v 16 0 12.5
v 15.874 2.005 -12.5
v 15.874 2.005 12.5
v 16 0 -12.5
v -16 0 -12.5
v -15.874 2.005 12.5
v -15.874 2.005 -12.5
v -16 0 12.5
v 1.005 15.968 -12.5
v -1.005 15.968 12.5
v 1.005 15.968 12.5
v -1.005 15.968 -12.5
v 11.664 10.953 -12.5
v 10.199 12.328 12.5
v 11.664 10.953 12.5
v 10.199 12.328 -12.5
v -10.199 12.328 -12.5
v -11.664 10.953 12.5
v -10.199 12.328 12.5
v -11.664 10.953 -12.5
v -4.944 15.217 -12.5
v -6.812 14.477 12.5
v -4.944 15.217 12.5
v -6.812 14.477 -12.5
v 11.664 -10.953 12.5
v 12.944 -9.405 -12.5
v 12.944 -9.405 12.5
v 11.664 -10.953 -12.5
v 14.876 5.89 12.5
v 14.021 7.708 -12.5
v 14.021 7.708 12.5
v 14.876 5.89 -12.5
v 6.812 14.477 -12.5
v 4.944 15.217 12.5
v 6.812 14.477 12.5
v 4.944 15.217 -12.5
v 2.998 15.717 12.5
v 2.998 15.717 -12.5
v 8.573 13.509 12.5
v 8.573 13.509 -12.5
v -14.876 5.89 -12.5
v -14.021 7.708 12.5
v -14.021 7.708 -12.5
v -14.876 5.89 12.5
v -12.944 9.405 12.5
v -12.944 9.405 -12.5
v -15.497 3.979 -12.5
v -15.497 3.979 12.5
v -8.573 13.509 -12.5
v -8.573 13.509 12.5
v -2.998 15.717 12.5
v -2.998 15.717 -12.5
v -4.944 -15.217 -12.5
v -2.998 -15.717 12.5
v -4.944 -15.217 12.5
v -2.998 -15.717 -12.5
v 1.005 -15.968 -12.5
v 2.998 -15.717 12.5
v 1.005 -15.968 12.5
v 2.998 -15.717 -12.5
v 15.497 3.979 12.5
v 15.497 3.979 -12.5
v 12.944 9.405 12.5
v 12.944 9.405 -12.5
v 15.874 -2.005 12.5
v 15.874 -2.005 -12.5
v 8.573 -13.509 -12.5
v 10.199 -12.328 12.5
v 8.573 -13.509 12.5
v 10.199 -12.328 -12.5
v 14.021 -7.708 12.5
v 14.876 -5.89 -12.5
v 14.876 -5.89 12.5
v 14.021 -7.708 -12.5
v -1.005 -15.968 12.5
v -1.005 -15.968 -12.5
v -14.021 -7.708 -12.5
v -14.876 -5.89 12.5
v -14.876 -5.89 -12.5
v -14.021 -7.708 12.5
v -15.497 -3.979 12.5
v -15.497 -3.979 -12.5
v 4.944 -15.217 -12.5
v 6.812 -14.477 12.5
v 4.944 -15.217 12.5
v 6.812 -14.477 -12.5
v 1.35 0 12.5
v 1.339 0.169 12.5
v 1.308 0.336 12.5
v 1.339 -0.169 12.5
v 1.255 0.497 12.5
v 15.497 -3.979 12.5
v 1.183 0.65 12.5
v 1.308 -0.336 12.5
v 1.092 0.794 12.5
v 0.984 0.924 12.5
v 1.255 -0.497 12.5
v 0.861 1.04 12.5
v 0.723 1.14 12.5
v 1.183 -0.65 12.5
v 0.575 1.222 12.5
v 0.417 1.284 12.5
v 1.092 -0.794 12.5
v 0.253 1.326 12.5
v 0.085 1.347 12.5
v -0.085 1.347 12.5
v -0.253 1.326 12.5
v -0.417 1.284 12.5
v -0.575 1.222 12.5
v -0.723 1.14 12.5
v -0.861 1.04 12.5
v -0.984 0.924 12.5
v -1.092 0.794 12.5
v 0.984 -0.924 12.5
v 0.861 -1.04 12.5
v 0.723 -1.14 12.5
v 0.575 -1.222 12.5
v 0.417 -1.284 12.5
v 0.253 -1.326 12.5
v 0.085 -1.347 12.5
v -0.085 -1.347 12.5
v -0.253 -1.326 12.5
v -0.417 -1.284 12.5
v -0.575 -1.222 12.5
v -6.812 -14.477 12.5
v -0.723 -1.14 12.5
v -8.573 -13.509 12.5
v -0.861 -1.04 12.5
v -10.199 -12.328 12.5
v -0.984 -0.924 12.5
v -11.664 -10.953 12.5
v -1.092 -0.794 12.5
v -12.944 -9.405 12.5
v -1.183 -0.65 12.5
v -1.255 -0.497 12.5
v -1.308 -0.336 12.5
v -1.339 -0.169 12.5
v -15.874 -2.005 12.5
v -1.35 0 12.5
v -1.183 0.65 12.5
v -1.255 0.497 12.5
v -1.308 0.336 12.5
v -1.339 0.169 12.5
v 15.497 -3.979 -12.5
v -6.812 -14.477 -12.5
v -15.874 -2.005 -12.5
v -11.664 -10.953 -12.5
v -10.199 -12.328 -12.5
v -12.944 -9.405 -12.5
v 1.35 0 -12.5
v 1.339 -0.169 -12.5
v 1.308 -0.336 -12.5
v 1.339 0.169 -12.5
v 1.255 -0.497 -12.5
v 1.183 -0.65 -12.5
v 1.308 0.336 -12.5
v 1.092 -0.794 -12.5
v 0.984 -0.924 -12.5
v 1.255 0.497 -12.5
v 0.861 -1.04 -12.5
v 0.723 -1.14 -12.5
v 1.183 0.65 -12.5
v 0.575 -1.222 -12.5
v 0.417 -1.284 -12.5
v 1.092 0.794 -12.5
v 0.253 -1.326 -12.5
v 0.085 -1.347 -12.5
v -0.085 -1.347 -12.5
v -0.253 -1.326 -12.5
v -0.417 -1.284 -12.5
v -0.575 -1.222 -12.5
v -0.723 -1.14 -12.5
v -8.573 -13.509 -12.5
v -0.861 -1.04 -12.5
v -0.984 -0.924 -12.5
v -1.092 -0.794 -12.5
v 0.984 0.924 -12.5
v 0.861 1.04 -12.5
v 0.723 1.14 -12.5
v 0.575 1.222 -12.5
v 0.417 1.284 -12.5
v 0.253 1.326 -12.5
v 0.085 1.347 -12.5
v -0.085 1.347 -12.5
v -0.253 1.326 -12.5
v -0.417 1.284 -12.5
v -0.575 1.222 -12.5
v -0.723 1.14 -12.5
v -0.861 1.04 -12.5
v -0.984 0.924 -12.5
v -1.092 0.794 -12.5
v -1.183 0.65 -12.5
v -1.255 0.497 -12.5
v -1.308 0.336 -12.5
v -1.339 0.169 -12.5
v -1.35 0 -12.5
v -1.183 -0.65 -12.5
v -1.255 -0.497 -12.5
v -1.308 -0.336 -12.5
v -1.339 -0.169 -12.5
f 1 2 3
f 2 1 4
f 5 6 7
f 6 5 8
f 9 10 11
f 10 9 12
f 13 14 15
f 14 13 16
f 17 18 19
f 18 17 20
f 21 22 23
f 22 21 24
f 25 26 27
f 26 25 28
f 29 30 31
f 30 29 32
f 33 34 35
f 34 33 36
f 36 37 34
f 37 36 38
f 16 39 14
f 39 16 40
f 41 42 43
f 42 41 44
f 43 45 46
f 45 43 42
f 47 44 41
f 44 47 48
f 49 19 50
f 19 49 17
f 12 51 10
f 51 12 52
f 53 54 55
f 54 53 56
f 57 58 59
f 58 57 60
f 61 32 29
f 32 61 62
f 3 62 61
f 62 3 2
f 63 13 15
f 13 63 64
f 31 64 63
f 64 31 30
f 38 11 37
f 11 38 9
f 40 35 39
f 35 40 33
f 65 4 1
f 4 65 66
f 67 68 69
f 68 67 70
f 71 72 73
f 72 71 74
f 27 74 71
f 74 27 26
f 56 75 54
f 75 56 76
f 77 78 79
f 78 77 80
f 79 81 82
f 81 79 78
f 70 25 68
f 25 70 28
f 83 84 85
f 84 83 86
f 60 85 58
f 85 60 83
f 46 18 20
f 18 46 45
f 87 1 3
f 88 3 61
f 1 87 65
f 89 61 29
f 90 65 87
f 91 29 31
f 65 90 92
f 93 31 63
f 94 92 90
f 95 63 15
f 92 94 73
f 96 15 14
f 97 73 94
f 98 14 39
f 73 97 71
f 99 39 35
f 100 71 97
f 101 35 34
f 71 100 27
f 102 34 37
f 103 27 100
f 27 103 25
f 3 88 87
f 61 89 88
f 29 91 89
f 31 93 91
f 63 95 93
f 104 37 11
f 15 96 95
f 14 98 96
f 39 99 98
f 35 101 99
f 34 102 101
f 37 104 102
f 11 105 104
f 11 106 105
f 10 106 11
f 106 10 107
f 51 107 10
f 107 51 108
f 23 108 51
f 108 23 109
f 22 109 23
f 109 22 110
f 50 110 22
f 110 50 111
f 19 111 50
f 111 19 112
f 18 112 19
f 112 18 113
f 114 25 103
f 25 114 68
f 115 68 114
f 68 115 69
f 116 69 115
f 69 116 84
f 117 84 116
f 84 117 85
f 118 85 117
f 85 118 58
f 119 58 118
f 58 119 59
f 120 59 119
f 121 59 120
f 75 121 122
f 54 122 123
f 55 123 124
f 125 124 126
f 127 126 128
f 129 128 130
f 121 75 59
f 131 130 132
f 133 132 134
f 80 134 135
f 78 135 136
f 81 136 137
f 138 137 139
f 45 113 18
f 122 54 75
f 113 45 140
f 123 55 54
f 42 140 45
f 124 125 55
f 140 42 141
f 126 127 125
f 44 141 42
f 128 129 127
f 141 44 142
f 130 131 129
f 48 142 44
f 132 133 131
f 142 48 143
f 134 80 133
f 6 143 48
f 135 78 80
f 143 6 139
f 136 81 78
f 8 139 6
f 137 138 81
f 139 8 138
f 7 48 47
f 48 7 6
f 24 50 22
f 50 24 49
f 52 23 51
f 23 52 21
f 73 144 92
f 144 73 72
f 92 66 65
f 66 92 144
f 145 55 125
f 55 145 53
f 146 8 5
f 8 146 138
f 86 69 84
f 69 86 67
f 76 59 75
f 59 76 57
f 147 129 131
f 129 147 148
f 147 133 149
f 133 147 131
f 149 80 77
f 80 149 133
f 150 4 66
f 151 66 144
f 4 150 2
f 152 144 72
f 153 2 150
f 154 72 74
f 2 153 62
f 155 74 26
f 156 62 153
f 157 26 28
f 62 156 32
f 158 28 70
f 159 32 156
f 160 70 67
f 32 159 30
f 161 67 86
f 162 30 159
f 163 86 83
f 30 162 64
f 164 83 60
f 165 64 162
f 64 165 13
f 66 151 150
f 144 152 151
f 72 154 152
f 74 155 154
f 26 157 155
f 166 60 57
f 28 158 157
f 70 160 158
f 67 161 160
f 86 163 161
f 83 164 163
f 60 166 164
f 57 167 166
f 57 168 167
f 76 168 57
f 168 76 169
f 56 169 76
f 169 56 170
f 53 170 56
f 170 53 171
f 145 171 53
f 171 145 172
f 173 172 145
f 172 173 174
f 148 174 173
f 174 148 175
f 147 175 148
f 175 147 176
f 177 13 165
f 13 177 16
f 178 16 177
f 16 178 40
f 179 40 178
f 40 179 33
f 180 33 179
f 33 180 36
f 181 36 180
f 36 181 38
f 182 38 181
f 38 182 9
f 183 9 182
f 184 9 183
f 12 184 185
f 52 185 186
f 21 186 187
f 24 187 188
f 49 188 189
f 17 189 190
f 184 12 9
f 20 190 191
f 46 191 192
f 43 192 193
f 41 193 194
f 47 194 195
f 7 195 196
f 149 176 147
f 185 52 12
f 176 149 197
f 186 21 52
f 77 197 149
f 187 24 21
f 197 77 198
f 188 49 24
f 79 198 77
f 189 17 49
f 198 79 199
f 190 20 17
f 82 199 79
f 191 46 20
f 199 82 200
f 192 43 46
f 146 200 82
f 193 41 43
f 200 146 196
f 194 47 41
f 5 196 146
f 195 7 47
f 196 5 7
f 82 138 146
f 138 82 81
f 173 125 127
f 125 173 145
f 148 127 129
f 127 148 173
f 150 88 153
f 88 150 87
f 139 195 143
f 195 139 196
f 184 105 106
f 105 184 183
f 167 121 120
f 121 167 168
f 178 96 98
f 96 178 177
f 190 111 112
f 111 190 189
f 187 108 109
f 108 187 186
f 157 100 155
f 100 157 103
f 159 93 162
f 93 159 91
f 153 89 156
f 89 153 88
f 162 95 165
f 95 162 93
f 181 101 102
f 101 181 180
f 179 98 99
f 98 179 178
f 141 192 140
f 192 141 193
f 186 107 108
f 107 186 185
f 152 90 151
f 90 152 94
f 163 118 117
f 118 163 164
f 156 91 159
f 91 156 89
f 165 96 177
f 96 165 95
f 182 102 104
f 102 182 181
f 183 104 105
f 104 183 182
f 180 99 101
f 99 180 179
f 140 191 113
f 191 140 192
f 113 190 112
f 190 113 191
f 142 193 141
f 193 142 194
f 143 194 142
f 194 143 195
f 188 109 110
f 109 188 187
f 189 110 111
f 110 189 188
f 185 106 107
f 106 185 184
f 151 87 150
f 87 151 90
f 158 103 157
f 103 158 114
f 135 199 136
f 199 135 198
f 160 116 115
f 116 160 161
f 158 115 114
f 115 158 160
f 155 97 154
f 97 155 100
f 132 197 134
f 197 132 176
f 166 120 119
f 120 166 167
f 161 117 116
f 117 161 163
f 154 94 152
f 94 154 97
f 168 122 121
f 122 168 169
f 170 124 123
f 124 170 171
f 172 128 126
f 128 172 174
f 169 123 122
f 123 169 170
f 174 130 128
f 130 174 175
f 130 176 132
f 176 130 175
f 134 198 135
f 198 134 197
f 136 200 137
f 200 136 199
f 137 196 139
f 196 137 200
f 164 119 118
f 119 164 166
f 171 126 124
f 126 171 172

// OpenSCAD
$fn = 50;


difference() {
	union() {
		translate(v = [0, 0, -12.5000000000]) {
			cylinder(h = 25, r = 16.0000000000);
		}
	}
	union() {
		translate(v = [0, 0, -100.0000000000]) {
			cylinder(h = 200, r = 1.3500000000);
		}
	}
}
